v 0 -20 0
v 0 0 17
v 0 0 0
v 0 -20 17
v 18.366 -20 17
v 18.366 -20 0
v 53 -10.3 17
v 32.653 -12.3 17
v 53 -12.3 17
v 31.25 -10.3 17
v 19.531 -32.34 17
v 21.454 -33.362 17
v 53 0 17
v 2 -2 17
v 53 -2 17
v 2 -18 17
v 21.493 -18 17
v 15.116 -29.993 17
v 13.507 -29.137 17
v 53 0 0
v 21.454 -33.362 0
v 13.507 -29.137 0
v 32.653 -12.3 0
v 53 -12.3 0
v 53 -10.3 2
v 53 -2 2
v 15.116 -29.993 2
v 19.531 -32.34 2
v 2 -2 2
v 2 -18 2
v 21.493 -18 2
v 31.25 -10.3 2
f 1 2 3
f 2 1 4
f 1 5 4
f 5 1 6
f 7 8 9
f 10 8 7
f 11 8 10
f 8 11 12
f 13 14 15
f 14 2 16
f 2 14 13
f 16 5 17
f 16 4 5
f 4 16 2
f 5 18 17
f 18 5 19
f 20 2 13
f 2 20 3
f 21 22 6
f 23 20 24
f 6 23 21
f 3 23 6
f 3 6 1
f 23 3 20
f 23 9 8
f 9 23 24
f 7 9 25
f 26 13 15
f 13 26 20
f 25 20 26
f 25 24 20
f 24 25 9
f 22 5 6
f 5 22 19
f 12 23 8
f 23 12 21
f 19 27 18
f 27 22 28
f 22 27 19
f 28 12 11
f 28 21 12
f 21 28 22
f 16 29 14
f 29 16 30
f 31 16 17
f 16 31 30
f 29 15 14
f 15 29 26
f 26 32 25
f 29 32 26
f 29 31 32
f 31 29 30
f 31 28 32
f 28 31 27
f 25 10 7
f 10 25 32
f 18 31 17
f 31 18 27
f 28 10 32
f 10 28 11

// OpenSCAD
back_len=28;
front_len=25;
deep = 17;
height=33;
position=31;
rotation=28;
wall=2;

//all lengths are +1mm to allow some wiggling
keyboard_thickness_front= 8.3;
keyboard_thickness_back = 16;
tablet_thickness = 5;

module holder(){
difference(){
    union(){
    cube([back_len,deep,keyboard_thickness_back+2*wall]);
translate([back_len,0,0])cube([front_len,deep,keyboard_thickness_front+2*wall]);
 translate([position-wall,0,0])rotate([0,-rotation,0])cube([tablet_thickness+wall*2,deep,height]);
    }
translate([2,wall,wall])cube([back_len-2*wall+1,deep,keyboard_thickness_back]);

translate([back_len-2,2,2])cube([front_len+4,deep,keyboard_thickness_front]);

translate([position-1,2,2])rotate([0,-rotation,0])cube([tablet_thickness,deep,height+4]);
    
}
}

module h2(){
translate([back_len,0,0])cube([front_len,deep,keyboard_thickness_front+2*wall]);
     translate([position,0,0])rotate([0,-rotation,0])cube([tablet_thickness+2,deep,height]);
    }

rotate([90,0,0])holder();
